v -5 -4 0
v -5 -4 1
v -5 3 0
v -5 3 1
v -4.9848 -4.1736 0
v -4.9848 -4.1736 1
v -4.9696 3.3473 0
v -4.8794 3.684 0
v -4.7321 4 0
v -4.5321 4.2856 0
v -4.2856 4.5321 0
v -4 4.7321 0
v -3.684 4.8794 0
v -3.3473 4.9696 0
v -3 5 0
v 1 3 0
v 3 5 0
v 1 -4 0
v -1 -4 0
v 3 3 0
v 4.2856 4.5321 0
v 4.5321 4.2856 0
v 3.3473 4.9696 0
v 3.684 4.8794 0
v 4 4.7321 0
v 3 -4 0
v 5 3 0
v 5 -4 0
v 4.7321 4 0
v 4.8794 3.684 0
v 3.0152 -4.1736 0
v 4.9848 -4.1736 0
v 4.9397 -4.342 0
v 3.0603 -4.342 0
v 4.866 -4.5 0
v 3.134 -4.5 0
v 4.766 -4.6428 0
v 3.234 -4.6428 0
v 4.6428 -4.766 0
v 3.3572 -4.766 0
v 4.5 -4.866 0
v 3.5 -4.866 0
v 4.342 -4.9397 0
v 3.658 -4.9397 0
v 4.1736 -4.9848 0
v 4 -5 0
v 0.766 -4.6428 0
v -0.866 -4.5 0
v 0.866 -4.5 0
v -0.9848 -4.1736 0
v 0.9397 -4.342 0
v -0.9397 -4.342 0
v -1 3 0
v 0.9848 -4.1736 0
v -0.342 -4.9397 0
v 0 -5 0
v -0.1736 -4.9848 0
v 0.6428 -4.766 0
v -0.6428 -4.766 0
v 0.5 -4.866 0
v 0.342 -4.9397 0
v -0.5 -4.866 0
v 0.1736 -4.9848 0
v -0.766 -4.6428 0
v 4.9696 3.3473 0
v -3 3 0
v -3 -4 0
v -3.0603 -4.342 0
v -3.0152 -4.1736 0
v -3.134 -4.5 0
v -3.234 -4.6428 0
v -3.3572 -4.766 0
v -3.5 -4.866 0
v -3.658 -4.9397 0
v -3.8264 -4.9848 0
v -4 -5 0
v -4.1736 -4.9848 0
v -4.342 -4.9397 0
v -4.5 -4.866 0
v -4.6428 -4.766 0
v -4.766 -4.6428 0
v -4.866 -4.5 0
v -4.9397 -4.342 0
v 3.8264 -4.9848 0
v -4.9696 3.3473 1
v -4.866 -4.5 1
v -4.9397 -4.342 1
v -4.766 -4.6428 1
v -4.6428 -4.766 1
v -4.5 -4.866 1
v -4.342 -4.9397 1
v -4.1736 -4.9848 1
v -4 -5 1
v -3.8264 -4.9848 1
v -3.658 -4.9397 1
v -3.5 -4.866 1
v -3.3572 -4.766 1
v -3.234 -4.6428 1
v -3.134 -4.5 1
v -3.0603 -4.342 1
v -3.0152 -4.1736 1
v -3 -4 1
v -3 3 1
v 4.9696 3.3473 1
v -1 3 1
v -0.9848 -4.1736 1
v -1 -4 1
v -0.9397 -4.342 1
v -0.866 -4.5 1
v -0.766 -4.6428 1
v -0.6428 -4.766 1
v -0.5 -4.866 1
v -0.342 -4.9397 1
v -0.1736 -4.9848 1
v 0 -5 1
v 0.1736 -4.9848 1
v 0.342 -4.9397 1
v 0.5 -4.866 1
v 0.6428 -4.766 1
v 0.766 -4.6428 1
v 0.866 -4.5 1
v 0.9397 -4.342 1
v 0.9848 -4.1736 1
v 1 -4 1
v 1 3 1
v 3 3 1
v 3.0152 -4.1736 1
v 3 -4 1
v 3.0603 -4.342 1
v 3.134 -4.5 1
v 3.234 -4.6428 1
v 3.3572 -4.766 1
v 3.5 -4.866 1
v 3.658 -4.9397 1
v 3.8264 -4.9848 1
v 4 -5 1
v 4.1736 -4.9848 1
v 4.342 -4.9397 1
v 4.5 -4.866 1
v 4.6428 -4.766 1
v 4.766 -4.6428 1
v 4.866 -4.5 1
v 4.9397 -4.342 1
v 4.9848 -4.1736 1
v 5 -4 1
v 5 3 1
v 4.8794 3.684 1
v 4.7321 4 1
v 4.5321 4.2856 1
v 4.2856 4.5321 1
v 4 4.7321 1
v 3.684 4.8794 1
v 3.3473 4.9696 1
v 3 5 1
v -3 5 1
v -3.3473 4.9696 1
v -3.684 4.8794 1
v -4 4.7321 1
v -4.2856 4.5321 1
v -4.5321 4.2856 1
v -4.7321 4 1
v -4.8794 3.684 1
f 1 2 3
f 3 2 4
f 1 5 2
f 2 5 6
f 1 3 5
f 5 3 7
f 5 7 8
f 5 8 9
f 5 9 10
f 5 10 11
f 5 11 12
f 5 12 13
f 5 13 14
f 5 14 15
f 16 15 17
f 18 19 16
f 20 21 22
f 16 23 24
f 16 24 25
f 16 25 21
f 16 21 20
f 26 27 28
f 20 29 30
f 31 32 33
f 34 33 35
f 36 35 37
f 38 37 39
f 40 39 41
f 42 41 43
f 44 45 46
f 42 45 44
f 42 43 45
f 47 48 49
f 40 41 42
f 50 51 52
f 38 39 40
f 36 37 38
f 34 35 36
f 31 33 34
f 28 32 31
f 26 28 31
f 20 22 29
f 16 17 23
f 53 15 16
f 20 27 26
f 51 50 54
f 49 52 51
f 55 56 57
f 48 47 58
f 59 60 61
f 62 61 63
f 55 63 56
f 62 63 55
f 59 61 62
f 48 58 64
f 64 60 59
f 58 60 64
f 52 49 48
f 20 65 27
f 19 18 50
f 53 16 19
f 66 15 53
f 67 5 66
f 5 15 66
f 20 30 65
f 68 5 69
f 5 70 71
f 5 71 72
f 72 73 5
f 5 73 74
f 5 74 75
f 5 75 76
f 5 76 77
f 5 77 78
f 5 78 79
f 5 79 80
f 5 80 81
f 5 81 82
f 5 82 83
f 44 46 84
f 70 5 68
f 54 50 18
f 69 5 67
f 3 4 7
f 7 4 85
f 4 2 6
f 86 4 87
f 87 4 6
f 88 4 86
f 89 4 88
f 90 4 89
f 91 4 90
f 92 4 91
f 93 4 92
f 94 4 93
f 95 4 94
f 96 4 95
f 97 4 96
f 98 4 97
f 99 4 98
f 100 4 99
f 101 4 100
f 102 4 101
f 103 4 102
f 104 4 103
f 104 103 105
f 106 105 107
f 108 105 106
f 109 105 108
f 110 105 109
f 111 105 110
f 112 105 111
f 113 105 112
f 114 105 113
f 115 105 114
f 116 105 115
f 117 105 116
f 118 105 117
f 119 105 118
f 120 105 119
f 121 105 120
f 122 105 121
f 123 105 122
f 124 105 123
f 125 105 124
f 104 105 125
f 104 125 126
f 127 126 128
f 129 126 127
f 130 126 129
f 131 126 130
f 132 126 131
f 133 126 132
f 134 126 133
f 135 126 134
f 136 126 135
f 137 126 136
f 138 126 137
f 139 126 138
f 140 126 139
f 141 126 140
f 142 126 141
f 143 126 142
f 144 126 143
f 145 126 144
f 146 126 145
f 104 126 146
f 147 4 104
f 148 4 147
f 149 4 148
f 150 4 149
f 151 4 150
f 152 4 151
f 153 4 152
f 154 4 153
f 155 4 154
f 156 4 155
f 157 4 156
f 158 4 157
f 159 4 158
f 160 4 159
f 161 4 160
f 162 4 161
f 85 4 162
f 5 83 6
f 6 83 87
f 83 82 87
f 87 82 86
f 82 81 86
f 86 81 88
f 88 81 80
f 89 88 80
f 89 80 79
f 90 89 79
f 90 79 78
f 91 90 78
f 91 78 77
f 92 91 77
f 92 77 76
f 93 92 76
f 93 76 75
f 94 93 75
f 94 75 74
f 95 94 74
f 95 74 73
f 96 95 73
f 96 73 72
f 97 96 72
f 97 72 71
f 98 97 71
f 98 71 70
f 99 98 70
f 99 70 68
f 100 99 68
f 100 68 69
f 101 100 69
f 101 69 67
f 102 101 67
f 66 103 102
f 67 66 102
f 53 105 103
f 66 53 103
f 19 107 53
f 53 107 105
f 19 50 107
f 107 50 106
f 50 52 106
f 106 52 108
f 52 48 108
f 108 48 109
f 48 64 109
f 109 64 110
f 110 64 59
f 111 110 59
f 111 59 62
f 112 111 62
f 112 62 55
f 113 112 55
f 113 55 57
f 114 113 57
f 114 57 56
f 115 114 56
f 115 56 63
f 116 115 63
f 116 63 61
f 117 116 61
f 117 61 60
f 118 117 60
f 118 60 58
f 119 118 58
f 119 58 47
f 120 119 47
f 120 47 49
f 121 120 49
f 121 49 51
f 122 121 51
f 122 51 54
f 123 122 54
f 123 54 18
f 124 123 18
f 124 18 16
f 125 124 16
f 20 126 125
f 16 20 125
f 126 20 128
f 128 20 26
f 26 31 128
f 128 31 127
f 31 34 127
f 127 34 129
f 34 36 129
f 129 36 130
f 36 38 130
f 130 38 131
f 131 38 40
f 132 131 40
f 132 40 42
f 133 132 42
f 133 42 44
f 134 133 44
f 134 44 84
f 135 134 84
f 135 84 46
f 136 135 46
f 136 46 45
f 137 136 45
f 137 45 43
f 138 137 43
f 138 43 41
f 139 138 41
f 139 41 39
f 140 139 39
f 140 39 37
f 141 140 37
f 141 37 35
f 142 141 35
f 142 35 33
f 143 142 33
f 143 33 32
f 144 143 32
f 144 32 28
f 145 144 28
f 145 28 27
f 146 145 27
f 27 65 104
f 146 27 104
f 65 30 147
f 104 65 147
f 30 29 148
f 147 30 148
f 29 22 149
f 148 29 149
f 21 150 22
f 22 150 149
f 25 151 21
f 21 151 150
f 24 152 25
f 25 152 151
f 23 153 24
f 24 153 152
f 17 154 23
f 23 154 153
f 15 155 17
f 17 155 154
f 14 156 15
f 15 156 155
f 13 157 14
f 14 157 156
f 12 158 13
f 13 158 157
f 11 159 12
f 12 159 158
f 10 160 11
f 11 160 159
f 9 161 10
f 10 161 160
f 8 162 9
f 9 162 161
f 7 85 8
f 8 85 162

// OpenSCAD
module makerLogo() {
	translate([0,-4,0])union() {
		cylinder(1,1,1,$fn=36);
		translate([4,0,0])cylinder(1,1,1,$fn=36);
		translate([-4,0,0])cylinder(1,1,1,$fn=36);
		difference() {
			union() {
				translate([3,7,0])cylinder(1,2,2,$fn=36);
				translate([-3,7,0])cylinder(1,2,2,$fn=36);
			}
			translate([-3,5,-0.1])cube([6,2,1.2]);
		}
		translate([-1,0,0])cube([2,8,1]);
		translate([-5,0,0])cube([2,7,1]);
		translate([3,0,0])cube([2,7,1]);
		translate([-3,7,0])cube([6,2,1]);
	}
}
makerLogo();
